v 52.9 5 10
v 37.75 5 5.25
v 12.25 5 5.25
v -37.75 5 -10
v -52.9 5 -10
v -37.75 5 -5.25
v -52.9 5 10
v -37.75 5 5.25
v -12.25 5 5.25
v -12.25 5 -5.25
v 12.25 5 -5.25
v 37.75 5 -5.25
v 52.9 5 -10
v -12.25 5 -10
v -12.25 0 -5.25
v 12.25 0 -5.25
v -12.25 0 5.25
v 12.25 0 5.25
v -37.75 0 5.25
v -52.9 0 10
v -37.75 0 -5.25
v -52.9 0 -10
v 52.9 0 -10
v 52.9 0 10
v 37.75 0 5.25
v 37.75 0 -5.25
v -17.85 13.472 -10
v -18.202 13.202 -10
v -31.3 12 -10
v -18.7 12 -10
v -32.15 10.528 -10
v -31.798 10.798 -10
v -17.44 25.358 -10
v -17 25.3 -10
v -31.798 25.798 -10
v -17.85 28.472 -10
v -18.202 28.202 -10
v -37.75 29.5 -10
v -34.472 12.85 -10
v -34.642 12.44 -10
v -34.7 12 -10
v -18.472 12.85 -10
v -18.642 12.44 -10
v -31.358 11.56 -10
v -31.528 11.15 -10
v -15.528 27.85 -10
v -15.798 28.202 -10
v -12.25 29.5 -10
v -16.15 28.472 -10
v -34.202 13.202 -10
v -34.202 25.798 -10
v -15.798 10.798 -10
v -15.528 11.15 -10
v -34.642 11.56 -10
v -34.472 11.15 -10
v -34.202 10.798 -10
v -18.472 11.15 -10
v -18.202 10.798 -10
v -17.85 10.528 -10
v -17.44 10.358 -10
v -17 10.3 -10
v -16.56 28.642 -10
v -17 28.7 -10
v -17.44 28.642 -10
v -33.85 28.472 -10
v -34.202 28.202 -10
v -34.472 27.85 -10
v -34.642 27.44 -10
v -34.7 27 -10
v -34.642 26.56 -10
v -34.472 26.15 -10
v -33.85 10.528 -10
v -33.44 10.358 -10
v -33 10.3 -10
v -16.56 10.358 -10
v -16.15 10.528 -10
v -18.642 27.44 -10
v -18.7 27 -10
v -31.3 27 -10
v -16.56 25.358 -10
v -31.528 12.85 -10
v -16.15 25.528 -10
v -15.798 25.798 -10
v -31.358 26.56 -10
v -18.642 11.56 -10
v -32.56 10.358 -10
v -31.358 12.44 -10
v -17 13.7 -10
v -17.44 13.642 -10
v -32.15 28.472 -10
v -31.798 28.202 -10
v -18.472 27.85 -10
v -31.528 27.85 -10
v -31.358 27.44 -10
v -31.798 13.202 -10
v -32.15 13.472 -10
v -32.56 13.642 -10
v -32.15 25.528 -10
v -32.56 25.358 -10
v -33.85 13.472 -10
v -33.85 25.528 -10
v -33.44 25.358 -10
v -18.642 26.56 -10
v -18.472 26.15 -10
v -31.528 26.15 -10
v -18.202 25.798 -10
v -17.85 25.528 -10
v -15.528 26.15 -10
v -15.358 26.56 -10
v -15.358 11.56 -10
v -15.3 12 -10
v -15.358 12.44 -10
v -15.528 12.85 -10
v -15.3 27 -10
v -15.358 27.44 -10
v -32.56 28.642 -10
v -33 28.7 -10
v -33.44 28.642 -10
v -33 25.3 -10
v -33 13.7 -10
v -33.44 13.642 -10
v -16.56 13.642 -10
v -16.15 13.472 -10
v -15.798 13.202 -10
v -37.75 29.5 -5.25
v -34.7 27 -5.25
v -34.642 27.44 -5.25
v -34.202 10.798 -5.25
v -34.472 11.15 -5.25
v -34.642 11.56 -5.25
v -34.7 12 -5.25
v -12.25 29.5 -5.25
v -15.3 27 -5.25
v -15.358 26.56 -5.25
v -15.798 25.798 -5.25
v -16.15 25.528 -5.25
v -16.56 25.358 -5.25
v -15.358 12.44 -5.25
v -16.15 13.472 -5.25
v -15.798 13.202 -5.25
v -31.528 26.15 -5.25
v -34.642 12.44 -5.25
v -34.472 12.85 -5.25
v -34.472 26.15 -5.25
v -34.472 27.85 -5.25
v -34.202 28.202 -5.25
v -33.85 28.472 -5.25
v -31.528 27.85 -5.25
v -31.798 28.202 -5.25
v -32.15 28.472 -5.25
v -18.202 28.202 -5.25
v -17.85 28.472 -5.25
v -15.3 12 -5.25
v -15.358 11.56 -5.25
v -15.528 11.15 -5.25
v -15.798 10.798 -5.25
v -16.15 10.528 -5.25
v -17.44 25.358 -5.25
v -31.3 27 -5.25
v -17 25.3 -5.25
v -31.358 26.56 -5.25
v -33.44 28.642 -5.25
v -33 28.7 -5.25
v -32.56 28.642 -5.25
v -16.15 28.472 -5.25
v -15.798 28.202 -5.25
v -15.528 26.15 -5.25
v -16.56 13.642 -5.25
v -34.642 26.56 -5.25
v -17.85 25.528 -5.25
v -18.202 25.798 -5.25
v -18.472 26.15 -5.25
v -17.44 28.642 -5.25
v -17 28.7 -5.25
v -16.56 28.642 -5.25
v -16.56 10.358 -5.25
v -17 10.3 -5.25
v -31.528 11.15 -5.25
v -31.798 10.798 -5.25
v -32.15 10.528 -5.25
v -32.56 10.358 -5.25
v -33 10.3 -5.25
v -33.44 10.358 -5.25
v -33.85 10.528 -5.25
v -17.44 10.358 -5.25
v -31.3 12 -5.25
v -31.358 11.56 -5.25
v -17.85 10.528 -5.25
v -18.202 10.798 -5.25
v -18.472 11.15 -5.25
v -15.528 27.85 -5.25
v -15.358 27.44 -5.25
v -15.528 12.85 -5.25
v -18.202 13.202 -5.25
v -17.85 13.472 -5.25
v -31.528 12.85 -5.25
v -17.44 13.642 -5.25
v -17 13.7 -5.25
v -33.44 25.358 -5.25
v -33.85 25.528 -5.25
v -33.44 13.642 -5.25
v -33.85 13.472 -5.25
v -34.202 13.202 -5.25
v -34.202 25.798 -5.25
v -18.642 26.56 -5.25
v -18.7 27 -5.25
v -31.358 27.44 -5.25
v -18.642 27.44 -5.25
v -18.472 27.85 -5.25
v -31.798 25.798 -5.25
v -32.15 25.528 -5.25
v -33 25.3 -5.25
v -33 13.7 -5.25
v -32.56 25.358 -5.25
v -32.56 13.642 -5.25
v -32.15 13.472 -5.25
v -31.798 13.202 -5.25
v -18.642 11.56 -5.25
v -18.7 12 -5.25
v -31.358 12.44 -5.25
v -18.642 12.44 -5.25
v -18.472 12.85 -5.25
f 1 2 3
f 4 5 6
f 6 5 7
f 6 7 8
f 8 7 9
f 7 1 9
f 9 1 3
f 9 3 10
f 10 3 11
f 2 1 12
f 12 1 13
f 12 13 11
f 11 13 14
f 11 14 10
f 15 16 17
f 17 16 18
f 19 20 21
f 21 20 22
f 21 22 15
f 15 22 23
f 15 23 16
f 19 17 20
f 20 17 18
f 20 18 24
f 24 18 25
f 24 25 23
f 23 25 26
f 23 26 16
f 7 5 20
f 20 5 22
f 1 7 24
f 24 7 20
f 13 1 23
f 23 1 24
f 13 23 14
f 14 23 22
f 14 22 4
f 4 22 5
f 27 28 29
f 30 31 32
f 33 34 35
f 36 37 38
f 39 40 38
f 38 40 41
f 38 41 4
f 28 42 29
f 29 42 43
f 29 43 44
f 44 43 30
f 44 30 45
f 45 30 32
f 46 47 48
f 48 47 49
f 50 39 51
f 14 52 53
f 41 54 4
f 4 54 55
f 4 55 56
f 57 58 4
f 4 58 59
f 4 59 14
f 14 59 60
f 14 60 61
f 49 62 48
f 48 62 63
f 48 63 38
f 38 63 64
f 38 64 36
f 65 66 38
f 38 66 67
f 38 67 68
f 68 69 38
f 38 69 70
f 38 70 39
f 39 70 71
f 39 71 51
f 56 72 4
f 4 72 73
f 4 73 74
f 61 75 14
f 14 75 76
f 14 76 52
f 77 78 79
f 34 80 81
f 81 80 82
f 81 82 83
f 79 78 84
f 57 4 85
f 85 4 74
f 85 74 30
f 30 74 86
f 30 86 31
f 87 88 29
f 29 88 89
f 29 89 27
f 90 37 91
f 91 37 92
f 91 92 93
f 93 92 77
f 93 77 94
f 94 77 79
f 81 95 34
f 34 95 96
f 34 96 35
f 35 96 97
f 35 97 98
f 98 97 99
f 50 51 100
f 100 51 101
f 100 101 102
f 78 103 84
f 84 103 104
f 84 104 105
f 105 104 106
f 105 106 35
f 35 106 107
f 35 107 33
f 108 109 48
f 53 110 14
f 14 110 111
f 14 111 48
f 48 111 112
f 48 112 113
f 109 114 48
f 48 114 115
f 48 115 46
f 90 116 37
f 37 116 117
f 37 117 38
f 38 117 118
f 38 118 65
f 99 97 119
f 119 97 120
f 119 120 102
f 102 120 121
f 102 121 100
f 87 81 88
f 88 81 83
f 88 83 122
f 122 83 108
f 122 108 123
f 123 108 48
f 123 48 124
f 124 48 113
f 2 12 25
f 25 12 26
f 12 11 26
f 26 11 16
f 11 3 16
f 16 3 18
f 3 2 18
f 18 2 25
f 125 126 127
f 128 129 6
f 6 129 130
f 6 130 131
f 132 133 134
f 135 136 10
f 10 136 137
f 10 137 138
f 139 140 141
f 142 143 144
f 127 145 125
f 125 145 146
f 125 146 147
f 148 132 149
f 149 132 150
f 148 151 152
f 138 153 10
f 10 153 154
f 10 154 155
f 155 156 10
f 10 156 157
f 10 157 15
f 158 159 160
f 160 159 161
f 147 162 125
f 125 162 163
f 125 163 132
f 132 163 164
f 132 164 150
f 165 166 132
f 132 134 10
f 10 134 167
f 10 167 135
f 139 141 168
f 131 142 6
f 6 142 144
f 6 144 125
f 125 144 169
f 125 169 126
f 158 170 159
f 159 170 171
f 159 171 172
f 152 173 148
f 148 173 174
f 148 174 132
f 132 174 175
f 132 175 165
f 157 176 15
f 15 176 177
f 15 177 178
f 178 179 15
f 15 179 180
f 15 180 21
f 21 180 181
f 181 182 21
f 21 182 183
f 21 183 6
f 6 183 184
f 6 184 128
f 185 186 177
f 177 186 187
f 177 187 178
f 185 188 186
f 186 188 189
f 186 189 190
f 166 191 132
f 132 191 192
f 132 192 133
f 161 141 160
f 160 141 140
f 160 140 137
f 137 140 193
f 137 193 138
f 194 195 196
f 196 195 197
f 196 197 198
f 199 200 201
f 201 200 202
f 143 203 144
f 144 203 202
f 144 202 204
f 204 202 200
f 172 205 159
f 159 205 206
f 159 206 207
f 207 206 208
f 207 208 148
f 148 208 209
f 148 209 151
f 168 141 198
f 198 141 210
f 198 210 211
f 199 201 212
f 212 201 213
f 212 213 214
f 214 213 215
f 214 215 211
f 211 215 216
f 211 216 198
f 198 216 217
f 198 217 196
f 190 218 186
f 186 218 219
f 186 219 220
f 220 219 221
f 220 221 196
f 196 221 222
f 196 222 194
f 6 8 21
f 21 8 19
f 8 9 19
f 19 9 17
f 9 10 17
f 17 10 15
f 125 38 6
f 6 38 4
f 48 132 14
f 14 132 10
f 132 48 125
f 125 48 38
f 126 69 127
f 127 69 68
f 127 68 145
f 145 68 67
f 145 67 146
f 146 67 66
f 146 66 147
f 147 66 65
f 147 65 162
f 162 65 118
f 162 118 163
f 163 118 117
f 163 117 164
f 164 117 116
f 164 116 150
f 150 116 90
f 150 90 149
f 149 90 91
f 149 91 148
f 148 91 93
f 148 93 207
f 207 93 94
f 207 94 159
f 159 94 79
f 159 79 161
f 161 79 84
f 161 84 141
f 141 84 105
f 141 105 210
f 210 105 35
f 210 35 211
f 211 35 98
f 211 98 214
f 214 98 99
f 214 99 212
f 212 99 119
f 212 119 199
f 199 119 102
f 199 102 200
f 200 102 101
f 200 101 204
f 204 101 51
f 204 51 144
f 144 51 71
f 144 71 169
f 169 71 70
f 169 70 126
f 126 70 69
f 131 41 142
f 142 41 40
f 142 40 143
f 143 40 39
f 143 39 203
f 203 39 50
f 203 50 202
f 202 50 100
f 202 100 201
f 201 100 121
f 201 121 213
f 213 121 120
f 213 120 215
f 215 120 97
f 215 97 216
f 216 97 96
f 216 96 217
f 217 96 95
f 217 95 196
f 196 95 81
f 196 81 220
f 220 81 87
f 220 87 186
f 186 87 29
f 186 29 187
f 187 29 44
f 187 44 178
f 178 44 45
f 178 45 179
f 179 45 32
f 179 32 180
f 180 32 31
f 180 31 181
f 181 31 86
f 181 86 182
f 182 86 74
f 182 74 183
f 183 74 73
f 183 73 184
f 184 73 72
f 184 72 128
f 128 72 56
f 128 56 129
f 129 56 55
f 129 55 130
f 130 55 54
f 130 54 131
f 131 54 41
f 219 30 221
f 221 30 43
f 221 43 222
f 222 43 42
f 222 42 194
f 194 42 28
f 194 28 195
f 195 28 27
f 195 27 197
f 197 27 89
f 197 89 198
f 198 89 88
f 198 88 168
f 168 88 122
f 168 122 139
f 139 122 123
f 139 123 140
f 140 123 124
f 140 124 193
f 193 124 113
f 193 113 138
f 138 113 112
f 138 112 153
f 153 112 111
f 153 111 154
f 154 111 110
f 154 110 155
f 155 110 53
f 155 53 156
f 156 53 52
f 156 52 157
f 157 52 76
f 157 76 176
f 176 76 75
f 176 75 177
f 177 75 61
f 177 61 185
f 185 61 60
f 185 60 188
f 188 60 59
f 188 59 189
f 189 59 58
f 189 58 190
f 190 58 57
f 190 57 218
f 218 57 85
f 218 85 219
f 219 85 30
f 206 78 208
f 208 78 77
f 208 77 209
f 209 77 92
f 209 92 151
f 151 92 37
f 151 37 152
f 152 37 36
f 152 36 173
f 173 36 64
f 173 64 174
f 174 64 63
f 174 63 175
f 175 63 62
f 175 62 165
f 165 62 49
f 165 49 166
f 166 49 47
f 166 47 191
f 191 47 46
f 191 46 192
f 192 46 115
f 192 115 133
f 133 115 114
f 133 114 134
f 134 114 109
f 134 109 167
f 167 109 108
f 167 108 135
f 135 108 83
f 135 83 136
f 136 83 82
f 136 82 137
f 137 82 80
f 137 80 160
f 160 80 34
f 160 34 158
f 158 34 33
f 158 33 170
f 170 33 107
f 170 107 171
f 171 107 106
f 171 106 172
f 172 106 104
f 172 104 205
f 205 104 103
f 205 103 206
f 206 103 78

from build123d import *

# Parameters (mm, degrees)
SKETCH1_W           = 105.8
SKETCH1_H           = 20
SKETCH1_W_2         = 25.5
SKETCH1_H_2         = 10.5
BOSS_EXTRUDE1_DEPTH = 5
SKETCH2_W           = 25.5
SKETCH2_H           = 4.75
BOSS_EXTRUDE2_DEPTH = 24.5
SKETCH3_R           = 1.7
CUT_EXTRUDE1_DEPTH  = 5


with BuildPart() as part:
    # Sketch1 → Boss-Extrude1 (new body)
    with BuildSketch(Plane(origin=(0, 0, 0), x_dir=(1, 0, 0), z_dir=(0, 1, 0))):
        Rectangle(SKETCH1_W, SKETCH1_H)
        with Locations((25, 0)):
            Rectangle(SKETCH1_W_2, SKETCH1_H_2, mode=Mode.SUBTRACT)
        with Locations((-25, 0)):
            Rectangle(SKETCH1_W_2, SKETCH1_H_2, mode=Mode.SUBTRACT)
    extrude(amount=BOSS_EXTRUDE1_DEPTH)

    # Sketch2 → Boss-Extrude2 (add)
    with BuildSketch(Plane(origin=(0, 5, 0), x_dir=(1, 0, 0), z_dir=(0, 1, 0))):
        with Locations((-25, 7.625)):
            Rectangle(SKETCH2_W, SKETCH2_H)
    extrude(amount=BOSS_EXTRUDE2_DEPTH)

    # Sketch3 → Cut-Extrude1 (cut)
    with BuildSketch(Plane(origin=(0, 0, -10), x_dir=(-1, 0, 0), z_dir=(0, 0, -1))):
        with Locations((33, 27)):
            Circle(SKETCH3_R)
        with Locations((33, 12)):
            Circle(SKETCH3_R)
        with Locations((17, 12)):
            Circle(SKETCH3_R)
        with Locations((17, 27)):
            Circle(SKETCH3_R)
    extrude(amount=-CUT_EXTRUDE1_DEPTH, mode=Mode.SUBTRACT)


solid = part.part
